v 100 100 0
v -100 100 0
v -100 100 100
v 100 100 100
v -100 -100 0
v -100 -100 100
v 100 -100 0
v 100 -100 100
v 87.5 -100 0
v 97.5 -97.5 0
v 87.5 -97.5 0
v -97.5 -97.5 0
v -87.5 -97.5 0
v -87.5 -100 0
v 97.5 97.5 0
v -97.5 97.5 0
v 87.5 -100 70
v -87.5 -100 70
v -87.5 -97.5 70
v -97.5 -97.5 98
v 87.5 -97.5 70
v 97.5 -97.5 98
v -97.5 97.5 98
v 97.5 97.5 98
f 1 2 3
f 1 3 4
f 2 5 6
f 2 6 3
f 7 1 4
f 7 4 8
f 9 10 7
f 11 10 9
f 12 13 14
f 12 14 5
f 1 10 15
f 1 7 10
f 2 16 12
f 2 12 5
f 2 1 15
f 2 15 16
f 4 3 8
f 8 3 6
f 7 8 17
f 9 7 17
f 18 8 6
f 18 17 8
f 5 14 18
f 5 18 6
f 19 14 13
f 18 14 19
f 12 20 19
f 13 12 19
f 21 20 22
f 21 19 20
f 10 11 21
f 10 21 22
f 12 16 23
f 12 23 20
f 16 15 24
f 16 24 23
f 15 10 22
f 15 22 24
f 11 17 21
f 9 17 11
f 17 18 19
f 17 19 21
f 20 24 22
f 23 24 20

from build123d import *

# Parameters (mm, degrees)
SKETCH_W        = 200
SKETCH_H        = 200
PAD_DEPTH       = 100
SKETCH001_W     = 195
SKETCH001_H     = 195
POCKET_DEPTH    = 98
SKETCH002_W     = 175
SKETCH002_H     = 70
POCKET001_DEPTH = 25


with BuildPart() as part:
    # Sketch → Pad (new body)
    with BuildSketch(Plane.XY):
        Rectangle(SKETCH_W, SKETCH_H)
    extrude(amount=PAD_DEPTH)

    # Sketch001 (on Face5 of Pad) → Pocket (cut)
    with BuildSketch(Plane(origin=(0, 0, 0), x_dir=(1, 0, 0), z_dir=(0, 0, -1))):
        Rectangle(SKETCH001_W, SKETCH001_H)
    extrude(amount=-POCKET_DEPTH, mode=Mode.SUBTRACT)

    # Sketch002 (on Face6 of Pocket) → Pocket001 (cut)
    with BuildSketch(Plane.XZ.offset(100)):
        with Locations((0, 35)):
            Rectangle(SKETCH002_W, SKETCH002_H)
    extrude(amount=-POCKET001_DEPTH, mode=Mode.SUBTRACT)


solid = part.part
